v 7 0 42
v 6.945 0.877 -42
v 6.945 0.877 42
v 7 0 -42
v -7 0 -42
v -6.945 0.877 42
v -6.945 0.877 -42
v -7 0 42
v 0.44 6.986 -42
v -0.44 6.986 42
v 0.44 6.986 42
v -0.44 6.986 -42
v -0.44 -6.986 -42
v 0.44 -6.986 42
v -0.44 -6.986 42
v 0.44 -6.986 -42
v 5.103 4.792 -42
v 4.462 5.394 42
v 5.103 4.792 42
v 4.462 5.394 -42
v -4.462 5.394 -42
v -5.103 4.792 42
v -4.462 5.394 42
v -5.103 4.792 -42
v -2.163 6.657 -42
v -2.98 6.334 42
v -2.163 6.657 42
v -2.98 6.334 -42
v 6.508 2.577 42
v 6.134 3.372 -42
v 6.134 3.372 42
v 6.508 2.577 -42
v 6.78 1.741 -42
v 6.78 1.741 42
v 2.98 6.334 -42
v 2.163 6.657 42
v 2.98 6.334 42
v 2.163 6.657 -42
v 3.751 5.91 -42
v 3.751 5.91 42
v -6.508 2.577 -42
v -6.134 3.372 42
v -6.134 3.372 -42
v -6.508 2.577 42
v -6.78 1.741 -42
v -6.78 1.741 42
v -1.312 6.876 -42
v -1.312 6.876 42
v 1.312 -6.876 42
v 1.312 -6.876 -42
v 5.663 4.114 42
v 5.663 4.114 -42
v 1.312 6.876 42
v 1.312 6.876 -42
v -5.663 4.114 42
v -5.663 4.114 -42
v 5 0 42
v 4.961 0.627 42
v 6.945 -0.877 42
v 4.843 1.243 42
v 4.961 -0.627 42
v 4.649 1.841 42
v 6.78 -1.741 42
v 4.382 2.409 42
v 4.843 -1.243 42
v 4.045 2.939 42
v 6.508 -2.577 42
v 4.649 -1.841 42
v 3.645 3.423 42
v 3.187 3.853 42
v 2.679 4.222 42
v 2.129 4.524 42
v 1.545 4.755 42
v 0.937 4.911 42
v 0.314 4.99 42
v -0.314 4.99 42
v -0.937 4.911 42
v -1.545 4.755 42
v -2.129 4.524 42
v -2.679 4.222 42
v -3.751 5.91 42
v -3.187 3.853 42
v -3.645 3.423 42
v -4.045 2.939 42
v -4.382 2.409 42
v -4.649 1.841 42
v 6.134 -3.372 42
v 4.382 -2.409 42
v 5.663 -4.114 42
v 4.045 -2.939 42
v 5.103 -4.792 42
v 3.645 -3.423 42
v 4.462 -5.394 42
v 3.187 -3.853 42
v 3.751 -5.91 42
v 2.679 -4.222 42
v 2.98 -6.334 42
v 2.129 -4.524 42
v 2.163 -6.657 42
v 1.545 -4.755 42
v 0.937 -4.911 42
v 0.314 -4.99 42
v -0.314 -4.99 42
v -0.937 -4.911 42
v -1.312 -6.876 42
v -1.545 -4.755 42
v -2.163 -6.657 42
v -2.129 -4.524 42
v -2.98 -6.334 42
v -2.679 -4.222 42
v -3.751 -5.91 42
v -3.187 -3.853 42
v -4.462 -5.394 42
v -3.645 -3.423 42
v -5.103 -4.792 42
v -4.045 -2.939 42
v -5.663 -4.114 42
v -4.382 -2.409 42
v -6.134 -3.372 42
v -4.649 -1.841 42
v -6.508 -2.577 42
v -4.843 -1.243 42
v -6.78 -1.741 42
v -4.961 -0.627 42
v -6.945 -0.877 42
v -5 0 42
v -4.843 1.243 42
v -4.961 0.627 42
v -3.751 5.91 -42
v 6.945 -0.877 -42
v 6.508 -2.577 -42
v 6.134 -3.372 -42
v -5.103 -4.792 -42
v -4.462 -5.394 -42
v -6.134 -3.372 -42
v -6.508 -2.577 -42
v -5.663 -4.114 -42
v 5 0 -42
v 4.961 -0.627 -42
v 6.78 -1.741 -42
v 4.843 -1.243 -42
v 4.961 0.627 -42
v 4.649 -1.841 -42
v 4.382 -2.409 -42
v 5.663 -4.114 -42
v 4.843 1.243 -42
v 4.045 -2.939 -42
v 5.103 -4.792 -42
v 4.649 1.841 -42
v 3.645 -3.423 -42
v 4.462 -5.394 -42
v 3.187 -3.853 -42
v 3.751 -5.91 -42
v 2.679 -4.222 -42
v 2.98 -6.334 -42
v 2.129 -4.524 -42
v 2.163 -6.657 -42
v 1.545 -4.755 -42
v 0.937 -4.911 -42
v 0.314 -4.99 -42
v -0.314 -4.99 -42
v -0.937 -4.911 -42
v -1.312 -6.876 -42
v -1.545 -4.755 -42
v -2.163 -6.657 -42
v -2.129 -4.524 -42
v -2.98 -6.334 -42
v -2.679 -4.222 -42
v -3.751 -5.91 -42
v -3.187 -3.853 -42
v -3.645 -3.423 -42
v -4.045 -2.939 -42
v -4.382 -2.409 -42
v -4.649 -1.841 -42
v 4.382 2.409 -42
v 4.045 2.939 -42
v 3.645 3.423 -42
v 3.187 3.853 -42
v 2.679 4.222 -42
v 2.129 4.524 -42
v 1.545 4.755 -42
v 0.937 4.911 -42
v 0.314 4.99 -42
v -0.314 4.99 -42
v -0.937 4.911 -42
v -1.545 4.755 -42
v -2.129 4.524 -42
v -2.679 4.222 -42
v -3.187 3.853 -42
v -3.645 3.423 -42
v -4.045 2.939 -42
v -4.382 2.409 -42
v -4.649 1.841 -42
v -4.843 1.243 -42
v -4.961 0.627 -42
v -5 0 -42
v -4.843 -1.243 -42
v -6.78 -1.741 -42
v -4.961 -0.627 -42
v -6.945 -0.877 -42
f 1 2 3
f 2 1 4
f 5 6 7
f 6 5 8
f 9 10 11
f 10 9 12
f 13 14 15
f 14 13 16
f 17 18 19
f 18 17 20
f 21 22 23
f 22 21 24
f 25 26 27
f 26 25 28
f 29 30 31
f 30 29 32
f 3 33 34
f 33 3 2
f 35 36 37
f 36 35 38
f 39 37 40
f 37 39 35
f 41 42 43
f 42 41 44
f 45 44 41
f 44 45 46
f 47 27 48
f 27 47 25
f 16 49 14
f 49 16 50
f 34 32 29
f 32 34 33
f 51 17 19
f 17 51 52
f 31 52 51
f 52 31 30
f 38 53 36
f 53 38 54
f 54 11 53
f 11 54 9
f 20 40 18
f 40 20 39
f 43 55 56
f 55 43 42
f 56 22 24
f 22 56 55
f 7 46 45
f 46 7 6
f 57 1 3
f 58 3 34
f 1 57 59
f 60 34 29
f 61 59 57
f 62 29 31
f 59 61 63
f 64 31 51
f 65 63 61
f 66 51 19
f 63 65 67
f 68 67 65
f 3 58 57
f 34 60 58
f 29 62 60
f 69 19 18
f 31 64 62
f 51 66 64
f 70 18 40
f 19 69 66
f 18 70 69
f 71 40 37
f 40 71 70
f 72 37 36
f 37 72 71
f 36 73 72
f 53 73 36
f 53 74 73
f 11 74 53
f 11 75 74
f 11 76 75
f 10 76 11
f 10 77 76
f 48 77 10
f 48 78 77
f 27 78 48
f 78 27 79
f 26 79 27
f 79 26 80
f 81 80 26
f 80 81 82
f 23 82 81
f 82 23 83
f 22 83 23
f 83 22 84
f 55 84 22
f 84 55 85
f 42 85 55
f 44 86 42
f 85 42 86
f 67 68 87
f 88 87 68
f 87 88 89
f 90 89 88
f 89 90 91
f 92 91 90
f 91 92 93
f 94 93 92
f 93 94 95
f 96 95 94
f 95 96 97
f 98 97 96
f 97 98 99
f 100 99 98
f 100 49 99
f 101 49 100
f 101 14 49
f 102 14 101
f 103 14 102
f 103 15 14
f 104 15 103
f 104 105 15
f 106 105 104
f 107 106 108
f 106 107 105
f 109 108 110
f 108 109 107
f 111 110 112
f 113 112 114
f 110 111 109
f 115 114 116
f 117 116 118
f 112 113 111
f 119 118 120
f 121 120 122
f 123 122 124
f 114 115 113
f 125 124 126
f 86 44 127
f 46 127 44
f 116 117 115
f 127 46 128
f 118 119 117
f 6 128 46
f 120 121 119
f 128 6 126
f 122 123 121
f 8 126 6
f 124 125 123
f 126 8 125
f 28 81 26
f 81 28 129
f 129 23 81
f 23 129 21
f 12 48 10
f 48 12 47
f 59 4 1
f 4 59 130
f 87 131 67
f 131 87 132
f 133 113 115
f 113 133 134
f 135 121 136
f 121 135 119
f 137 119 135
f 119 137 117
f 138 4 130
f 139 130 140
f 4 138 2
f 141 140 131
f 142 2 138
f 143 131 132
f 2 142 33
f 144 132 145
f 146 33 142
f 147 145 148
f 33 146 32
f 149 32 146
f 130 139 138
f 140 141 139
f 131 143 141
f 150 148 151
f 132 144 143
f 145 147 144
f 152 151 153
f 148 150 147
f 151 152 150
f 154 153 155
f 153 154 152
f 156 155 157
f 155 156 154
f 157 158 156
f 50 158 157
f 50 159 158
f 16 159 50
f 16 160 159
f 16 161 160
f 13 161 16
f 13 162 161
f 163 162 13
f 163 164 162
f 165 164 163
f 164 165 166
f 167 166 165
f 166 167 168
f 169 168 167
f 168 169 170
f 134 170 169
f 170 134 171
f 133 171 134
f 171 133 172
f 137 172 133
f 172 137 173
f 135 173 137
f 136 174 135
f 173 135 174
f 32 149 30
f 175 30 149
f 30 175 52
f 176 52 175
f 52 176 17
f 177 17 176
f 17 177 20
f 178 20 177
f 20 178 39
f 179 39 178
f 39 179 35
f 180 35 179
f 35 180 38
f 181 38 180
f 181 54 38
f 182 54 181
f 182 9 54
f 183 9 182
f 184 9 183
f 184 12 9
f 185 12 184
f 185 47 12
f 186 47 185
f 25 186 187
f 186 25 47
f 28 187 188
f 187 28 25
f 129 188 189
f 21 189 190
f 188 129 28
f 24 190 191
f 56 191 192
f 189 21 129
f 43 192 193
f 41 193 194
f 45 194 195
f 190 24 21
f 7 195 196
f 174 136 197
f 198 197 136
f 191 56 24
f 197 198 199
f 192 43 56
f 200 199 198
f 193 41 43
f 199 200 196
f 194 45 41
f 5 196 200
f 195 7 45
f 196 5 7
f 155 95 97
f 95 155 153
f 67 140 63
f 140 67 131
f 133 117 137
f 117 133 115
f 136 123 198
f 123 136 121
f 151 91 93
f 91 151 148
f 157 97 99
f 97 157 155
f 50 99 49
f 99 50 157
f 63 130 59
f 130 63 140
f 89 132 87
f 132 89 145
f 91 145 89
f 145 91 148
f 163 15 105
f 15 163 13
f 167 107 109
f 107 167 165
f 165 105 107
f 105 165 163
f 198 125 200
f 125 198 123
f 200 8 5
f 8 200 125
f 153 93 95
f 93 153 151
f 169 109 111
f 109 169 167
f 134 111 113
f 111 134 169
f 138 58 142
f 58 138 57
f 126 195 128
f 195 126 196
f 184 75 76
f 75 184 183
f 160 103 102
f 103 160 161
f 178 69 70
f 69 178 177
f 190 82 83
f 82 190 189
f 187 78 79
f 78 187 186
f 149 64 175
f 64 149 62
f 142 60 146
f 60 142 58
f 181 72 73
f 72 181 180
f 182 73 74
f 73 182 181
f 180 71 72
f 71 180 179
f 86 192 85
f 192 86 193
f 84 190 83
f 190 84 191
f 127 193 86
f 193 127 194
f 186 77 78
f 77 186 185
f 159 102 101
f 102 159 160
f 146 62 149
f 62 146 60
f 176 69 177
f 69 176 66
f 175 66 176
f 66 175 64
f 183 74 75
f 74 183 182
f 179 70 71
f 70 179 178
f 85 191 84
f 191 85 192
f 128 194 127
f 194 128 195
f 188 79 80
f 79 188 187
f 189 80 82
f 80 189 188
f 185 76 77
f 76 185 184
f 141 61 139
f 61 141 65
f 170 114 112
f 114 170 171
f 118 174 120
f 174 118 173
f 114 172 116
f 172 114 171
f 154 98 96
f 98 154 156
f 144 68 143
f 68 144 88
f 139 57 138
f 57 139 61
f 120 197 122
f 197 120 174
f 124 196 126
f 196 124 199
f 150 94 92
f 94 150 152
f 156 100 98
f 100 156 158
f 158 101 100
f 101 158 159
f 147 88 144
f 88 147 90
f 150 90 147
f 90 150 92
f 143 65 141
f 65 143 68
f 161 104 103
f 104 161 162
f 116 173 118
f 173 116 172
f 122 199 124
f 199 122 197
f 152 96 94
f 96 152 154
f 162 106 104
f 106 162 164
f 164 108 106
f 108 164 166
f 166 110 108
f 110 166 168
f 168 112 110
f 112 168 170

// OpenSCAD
$fn = 50;


difference() {
	union() {
		translate(v = [0, 0, -42.0000000000]) {
			cylinder(h = 84, r = 7.0000000000);
		}
	}
	union() {
		translate(v = [0, 0, -100.0000000000]) {
			cylinder(h = 200, r = 5);
		}
	}
}
